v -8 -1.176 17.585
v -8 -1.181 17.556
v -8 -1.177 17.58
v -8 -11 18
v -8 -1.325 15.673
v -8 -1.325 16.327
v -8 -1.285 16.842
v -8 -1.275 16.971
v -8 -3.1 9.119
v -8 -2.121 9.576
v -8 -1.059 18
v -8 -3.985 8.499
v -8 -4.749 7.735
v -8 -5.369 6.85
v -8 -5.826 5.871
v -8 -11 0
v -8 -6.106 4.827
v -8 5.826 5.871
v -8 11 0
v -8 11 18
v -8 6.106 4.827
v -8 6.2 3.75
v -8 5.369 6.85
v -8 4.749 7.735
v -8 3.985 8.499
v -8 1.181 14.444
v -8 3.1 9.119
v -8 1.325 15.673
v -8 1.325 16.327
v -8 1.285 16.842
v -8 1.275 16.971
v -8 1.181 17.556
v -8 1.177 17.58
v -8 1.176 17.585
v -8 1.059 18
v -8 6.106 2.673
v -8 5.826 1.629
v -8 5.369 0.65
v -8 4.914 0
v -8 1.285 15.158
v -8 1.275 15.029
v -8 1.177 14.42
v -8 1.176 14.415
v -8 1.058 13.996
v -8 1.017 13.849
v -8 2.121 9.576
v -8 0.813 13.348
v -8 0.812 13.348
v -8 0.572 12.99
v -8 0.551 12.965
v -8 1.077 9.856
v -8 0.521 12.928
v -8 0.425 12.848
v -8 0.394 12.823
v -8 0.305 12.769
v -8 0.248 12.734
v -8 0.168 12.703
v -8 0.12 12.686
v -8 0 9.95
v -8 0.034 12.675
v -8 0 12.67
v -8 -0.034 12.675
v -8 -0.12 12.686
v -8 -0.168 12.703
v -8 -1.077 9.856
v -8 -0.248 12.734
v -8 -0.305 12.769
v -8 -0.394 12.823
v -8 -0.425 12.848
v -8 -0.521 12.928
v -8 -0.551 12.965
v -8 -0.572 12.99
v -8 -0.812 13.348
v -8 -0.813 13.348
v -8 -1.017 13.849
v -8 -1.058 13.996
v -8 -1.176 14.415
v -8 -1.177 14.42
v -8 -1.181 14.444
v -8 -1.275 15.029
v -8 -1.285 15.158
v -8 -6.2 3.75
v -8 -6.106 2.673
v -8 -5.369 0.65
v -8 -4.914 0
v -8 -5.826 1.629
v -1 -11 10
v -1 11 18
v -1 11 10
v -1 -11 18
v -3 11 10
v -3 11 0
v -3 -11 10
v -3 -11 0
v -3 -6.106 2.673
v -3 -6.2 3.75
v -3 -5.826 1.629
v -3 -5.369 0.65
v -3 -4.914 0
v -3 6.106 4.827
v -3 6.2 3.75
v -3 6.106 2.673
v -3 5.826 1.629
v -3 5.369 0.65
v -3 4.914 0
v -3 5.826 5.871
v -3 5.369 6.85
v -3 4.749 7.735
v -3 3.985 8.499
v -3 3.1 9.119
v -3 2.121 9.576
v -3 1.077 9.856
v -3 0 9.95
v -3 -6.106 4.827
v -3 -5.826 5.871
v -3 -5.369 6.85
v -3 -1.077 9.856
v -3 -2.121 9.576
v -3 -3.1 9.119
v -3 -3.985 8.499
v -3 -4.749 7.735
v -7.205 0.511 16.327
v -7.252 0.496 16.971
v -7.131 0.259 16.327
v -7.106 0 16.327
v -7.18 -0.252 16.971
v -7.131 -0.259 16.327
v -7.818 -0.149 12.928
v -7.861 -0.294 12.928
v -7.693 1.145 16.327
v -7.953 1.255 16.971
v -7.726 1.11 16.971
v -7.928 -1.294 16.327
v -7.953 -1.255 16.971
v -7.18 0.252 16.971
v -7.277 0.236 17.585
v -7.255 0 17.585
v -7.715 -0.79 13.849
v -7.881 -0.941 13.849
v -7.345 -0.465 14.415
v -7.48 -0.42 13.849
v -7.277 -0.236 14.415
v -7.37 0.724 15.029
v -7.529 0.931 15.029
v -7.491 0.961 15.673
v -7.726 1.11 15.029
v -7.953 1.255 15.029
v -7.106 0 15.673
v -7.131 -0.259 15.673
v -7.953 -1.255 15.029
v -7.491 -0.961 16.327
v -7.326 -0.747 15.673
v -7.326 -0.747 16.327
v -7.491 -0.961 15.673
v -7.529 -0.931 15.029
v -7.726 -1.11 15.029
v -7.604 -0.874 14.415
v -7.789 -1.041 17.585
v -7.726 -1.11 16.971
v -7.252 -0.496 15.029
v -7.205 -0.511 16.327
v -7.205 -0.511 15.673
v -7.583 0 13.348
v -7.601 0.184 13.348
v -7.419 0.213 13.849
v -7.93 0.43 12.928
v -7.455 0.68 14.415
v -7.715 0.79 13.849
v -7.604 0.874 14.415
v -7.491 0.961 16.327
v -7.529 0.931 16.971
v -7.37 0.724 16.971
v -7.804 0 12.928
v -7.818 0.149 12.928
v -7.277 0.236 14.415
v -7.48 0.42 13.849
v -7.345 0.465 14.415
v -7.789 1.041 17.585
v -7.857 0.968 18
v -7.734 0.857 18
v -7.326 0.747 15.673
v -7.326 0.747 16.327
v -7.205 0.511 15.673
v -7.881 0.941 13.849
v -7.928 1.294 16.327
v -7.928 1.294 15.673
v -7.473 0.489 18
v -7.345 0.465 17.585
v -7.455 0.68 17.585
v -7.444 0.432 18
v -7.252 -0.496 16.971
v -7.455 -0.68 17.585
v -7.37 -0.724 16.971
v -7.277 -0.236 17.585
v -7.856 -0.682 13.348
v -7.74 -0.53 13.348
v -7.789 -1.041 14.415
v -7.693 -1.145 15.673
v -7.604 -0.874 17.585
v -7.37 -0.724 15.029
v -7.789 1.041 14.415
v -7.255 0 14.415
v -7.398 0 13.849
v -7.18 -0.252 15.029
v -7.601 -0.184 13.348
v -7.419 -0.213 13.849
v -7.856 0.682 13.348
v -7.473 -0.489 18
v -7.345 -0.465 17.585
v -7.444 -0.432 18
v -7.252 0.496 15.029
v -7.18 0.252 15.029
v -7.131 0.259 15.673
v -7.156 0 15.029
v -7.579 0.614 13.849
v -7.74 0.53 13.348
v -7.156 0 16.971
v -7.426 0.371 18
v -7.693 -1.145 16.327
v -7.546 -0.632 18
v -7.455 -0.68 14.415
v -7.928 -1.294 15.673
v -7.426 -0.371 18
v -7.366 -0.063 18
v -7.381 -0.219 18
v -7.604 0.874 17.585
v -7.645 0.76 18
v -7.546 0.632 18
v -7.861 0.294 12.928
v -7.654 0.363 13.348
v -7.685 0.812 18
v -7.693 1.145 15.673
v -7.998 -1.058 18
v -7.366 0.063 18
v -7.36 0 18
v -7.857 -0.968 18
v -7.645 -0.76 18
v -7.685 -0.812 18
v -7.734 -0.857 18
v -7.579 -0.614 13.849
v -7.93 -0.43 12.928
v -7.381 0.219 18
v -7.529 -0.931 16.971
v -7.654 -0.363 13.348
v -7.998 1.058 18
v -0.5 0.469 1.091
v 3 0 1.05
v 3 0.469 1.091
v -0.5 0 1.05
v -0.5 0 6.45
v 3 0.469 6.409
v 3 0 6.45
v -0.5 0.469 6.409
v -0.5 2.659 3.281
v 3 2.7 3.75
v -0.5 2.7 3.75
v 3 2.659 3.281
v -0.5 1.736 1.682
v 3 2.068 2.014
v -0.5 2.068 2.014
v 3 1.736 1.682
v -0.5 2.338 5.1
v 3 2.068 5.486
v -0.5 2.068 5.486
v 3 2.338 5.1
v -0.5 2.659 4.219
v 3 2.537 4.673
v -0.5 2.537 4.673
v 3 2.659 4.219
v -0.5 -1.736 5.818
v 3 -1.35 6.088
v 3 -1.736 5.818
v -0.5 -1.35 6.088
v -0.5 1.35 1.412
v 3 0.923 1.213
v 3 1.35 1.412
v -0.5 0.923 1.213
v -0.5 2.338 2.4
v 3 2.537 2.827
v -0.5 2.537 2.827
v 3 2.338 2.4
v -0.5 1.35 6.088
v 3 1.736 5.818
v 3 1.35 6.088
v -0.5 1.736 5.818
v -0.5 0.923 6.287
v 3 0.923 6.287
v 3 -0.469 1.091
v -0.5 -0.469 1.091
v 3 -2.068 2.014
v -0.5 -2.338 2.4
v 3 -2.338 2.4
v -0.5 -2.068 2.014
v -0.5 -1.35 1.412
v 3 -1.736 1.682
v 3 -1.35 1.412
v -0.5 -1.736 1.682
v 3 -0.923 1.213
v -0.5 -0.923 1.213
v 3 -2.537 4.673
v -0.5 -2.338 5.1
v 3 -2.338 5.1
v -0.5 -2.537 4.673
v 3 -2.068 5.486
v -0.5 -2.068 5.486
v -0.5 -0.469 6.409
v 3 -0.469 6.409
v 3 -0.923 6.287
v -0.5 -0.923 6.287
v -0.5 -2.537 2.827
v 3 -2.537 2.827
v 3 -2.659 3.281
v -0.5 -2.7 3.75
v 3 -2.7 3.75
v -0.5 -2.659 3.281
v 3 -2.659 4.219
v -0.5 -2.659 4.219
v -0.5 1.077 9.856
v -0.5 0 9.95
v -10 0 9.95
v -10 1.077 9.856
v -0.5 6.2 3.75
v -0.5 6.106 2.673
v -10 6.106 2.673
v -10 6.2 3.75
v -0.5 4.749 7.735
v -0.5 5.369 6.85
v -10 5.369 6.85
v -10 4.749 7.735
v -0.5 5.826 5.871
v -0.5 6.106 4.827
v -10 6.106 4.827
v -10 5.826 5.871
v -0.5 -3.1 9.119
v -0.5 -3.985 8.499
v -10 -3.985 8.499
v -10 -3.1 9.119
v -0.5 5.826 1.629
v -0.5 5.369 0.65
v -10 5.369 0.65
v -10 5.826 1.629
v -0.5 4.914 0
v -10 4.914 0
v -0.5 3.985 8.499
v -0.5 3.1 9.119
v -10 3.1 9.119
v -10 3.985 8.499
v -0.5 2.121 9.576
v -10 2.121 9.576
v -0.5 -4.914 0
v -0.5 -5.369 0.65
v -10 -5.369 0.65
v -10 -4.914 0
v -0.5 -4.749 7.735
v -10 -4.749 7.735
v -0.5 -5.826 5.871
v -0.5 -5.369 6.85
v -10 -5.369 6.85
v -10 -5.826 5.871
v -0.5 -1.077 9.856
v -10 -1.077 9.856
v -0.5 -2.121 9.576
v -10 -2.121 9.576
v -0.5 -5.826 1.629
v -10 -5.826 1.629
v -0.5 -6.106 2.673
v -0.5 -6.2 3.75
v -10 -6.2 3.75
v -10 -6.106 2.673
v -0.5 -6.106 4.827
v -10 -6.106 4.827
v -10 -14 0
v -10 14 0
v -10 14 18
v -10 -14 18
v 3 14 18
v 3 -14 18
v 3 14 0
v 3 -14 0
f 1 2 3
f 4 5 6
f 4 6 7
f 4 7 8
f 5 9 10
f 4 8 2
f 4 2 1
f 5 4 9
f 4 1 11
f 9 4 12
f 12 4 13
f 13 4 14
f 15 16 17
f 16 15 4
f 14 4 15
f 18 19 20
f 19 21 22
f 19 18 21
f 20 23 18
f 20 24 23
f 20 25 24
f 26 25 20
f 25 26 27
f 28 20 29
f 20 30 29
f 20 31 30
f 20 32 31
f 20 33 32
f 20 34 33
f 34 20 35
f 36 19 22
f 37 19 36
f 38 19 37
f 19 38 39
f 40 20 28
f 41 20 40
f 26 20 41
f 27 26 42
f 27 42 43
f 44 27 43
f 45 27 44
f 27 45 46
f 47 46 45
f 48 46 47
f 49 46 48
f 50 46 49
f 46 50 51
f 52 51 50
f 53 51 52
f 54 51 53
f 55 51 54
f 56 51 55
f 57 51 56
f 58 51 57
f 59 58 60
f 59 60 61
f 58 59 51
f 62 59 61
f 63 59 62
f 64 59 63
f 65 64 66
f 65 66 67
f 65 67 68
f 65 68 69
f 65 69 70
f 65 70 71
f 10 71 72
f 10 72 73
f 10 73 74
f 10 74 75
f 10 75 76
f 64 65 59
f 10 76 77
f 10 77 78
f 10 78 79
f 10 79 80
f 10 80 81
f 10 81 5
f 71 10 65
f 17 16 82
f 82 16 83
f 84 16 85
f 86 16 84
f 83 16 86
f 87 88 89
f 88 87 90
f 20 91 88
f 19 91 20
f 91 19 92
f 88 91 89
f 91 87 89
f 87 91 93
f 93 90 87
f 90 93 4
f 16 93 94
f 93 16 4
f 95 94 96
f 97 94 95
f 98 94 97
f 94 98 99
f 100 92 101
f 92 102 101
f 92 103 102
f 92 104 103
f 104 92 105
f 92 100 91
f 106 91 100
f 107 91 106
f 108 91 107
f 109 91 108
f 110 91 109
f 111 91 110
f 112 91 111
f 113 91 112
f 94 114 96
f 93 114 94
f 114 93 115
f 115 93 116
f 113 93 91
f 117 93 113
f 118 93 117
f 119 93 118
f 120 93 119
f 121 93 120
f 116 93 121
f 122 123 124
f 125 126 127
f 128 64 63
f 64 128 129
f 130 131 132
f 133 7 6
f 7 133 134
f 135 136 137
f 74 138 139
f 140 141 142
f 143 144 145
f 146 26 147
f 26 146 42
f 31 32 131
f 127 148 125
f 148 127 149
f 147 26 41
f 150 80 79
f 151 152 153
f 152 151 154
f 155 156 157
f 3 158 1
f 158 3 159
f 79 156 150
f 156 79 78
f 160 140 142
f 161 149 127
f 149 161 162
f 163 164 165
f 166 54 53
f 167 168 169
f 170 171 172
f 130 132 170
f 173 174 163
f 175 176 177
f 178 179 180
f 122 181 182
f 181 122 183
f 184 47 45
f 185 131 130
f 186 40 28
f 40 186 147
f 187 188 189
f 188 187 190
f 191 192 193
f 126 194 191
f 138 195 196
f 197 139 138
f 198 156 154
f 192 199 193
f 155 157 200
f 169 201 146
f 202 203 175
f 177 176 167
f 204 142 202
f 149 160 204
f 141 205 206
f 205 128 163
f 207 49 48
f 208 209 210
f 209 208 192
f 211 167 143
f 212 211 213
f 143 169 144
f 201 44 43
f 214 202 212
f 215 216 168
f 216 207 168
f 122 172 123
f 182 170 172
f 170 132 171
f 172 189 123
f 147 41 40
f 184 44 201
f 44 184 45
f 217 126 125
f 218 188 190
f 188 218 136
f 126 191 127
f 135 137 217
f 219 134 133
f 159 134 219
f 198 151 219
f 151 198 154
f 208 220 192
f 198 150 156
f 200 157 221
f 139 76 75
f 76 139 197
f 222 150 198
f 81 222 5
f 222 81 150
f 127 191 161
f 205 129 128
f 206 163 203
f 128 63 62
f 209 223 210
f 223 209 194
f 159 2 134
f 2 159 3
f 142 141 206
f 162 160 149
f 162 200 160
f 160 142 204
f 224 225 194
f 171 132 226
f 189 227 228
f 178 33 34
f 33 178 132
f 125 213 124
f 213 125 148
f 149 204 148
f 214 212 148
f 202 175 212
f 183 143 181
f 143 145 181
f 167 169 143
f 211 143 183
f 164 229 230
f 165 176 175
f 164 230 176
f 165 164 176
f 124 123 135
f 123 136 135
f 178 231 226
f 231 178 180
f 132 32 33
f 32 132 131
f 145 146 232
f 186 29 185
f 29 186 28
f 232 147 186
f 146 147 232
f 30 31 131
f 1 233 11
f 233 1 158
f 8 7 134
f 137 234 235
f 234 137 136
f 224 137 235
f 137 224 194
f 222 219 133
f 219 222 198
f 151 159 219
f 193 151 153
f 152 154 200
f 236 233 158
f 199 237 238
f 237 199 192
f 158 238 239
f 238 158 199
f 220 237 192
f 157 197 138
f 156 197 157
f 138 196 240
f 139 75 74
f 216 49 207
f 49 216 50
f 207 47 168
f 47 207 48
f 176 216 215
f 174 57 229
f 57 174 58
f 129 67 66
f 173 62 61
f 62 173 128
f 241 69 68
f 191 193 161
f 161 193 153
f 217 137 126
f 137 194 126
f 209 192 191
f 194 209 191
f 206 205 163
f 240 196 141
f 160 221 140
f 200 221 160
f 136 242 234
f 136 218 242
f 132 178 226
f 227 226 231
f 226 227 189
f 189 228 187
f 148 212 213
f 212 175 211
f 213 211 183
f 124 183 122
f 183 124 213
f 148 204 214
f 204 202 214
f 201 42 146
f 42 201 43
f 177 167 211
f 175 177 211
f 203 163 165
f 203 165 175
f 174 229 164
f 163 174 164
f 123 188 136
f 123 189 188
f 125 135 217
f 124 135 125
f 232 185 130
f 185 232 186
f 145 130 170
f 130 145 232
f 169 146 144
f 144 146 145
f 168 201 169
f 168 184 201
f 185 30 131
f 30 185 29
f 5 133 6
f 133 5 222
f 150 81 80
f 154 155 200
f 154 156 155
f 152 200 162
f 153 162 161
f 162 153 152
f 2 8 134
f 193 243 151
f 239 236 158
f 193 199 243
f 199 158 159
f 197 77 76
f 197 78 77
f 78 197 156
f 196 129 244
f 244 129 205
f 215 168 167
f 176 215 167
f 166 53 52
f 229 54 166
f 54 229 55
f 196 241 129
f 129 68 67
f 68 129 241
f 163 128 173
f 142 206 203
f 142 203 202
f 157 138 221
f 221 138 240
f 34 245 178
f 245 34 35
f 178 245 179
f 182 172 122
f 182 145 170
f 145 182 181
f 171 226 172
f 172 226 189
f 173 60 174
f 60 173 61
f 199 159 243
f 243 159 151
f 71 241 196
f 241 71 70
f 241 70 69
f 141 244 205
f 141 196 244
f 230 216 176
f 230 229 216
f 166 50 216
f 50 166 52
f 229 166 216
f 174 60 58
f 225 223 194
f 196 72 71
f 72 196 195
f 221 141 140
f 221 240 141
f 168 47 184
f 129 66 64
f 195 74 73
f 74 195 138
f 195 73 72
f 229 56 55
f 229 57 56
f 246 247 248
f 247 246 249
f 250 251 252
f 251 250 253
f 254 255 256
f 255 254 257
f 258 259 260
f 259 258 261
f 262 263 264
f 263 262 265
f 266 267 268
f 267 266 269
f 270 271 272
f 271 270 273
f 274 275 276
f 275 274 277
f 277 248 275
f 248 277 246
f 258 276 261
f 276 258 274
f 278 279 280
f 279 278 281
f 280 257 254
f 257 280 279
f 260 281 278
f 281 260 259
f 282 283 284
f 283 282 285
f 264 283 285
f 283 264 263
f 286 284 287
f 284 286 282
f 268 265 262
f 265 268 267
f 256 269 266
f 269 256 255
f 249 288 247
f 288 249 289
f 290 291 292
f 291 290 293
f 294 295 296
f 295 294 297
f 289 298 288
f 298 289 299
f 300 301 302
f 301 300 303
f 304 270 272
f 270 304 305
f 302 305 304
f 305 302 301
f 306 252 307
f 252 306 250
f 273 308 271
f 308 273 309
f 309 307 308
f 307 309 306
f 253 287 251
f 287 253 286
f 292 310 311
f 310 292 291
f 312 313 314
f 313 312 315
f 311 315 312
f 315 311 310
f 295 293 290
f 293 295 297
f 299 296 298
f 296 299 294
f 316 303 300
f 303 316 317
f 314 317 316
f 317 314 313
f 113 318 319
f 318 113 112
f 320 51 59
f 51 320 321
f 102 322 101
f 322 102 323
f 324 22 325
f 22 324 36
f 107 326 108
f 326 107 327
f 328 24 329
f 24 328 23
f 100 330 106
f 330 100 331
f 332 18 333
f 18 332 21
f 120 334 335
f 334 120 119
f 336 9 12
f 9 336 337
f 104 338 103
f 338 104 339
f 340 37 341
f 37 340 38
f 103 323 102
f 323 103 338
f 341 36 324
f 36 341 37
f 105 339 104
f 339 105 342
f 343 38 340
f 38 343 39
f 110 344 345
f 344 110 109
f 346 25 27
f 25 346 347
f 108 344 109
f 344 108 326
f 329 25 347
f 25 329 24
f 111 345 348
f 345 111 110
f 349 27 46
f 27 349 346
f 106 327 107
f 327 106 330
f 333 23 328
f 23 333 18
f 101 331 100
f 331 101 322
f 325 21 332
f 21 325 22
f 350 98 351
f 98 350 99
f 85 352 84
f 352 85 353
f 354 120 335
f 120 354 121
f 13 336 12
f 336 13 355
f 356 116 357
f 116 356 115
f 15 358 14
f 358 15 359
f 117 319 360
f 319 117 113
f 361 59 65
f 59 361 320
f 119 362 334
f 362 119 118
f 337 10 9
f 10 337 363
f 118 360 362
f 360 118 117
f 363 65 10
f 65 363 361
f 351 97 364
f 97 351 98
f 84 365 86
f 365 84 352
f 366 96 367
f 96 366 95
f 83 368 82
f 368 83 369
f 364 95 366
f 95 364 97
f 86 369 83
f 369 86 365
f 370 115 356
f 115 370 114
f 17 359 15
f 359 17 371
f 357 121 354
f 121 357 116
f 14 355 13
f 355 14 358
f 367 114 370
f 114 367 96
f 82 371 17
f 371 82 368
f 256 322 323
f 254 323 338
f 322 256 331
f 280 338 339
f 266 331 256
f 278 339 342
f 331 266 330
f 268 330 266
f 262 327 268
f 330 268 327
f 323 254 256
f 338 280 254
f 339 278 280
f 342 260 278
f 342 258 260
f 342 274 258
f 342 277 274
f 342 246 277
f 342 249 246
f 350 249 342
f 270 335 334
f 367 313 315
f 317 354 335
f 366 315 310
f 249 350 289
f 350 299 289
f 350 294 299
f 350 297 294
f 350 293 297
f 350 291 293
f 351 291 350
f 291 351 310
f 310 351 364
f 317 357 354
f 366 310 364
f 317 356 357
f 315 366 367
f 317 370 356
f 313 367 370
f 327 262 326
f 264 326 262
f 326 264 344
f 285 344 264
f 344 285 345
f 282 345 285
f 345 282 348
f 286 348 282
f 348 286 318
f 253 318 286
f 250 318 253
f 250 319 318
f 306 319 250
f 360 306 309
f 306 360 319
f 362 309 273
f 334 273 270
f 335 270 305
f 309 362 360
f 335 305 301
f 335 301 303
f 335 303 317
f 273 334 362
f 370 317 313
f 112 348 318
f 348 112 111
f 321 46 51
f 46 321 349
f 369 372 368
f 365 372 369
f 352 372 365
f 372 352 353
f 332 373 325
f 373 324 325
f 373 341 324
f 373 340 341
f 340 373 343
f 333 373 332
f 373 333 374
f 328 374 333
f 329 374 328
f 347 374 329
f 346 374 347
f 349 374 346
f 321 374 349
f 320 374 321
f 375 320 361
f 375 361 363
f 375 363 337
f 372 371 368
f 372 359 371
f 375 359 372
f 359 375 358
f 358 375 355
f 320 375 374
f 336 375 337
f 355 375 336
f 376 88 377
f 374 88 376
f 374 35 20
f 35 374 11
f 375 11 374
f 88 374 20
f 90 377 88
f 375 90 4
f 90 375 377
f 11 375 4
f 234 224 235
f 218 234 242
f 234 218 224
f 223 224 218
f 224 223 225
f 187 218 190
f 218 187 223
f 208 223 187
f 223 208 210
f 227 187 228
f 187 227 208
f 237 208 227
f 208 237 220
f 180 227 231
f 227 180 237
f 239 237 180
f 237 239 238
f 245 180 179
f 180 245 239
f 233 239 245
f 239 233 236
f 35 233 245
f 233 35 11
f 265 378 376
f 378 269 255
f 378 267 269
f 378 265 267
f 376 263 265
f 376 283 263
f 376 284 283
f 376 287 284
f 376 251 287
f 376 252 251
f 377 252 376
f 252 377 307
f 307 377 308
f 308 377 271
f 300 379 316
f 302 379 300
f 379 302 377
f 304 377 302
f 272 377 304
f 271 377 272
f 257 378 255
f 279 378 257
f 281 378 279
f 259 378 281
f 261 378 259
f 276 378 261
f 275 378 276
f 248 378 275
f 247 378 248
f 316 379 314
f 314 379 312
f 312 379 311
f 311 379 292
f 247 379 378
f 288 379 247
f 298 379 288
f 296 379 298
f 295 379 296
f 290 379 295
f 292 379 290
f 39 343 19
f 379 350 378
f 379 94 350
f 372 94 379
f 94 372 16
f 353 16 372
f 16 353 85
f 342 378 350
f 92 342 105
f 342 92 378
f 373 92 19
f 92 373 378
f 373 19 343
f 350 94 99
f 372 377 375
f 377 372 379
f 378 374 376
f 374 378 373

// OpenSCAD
// file: ../functions.scad
//a cylinder with a flat on top - for drawing vertical holes.
module cap_cylinder(r=1, h=1, center=false){
	render() union(){
		cylinder(r=r, h=h, center=center);
		intersection(){
			rotate([0,0,22.5]) cylinder(r=r/cos(180/8), h=h, $fn=8, center=center);
			translate([0,-r/cos(180/4),0]) rotate([0,0,0]) cylinder(r=r/cos(180/4), h=h, $fn=4, center=center);
		}
	}
}

//holes for the motor
module motor_holes(screw_rad = m3_rad+slop/2, screw_w = motor_screw_sep, slot=2, height = wall*3){
    bump_rad = 12;
    
    cylinder(r=bump_rad, h=height, center=true);
    %translate([0,0,-20]) cylinder(r=pulley_flange_rad, h=height*2);
    for(i=[0:90:359]) rotate([0,0,i]) translate([screw_w/2, screw_w/2, 0]){
        hull(){
            translate([-slot/2,-slot/2,0]) cylinder(r=screw_rad, h=height, center=true);
            translate([slot/2,slot/2,0]) cylinder(r=screw_rad, h=height, center=true);
        }
    }
}

module screw_hole_m3(cap=false, onion=0, height=wall){
    screw_hole(cap=cap, onion=onion, cap_height=m3_cap_height, rad=m3_rad, cap_rad=m3_cap_rad, height=height);
}

module nut_hole_m3(cap=false, onion=0, height=wall){
    nut_hole(cap=cap, onion=onion, nut_height=m3_nut_height+1, rad=m3_rad, nut_rad=m3_nut_rad, height=height);
}

module screw_hole_m4(cap=false, onion=0, height=wall){
    screw_hole(cap=cap, onion=onion, cap_height=m4_cap_height, rad=m4_rad, cap_rad=m4_cap_rad, height=height);
}

module screw_hole_m5(cap=false, onion=0, height=wall){
    screw_hole(cap=cap, onion=onion, cap_height=m5_cap_height, rad=m5_rad, cap_rad=m5_cap_rad, height=height);
}

//nuthole with a nice recess for the cap.
module nut_hole(cap=false, onion=0, height=wall){
    translate([0,0,-nut_height-1])
        if(cap==true){
            cap_cylinder(r=rad, h=height*3);
        }else{
            cylinder(r=rad, h=height*3);
        }
	translate([0,0,0])
        cylinder(r1=nut_rad, r2=nut_rad+slop, h=height, $fn=6);
        
}

//nuthole with a nice recess for the cap.
module screw_hole(cap=false, onion=0, height=wall){
    translate([0,0,cap_height-.05+onion])
        if(cap==true){
            cap_cylinder(r=rad, h=height);
        }else{
            cylinder(r=rad, h=height);
        }
	translate([0,0,cap_height-height])
        if(cap==true){
            cap_cylinder(r=cap_rad, h=height);
        }else{
            cylinder(r=cap_rad, h=height);
        }
}
// file: ../configuration.scad
in = 25.4;
mdf_wall = 6.5;
mdf_tab = 15;

wall = 5;

screw_slop = .2;
slop = .2;
laser_slop = -.1;

smooth_rod_rad = 10/2+laser_slop+.1;
smooth_rod_sep =490/5;

//this is for the old printer 
//smooth_rod_sep = 115;

//these can't change - measured values.
beam = 20;
bed_screw_sep = 309;
bed = 300;

layer_height=.2;

//this is using the gt2 idlers from robotdigg
//idler_rad = 13/2;
//idler_flange_rad = 18/2;
//idler_thick = 12;

//these use the smaller M5 flanged bearings as idlers
idler_rad = 16/2;
idler_flange_rad = 18/2;
idler_thick = 11.5;

//flanged bearing for the Z idler
z_bearing=22/2;
z_bearing_flange = 25/2;
leadscrew_rad = 8/2+slop;
leadscrew_shaft_rad = 7;
leadscrew_screw_rad = 19.05/2;

pulley_rad = 13/2;
pulley_flange_rad = 18/2;

//using the mini V-wheels
wheel_rad = 15.5/2;
wheel_inner_rad = 12.5/2;
wheel_clearance = 18;
wheel_height = 9;
wheel_inner_height = 5;
wheel_flange_rad = 16/2;

eccentric_rad = 7.3/2;
eccentric_flange_rad = 11/2;

//frame lengths - may be dependent on wall above.
frame_x = 500;  //we lose more in X because of the endcaps - it's where all the motors etc. will hide.
frame_y = 490;  //(490-300)/2-beam=75mm clearance on either side of the print bed.
corner_y = frame_y-75;
frame_z = 440;  //because the leadscrews are short, the motors stick up and the feet stick down
corner_z = frame_z-25;

corner_endplate = true; //this controls wether you want a full endcap, or just the corners.  Corners allows twisting in a direction that should be impossible when the rails are connected on both ends, but I wanted to retain the old option just in case.
corner_length = 170; //length of the corner side support.

foot_height = 25.4;  //extra meat on the legs

echo("BOM: 4, reg rail, 2020", frame_x, "Frame");

belt_thick = 9;
belt_width = 1.5;

//motor size and placement variables
motor_w = 42;
motor_r = 52/2;
motor_y = frame_y/2-beam-pulley_rad-belt_width; //distance motors are from the center.




//gantry - might want to make it bigger
echo("BOM: 1, v-rail, 2020", frame_y, "Gantry");

//bed lengths
bed_x = 300+beam*2;
bed_y = 300;  //the screwholes on the bed should line up with the long_bed rails.

bed_screw_offset_y = bed_y/2;
bed_screw_offset_x = 15+5+2;

echo("BOM: 2, reg rail, 2020", bed_x, "Bed mount");
echo("BOM: 3, reg rail, 2020", bed_y, "Bed mount");  //might want more than three - to hold insulation well.

//standard screw variables
m3_nut_rad = 6.01/2+slop;
m3_nut_height = 2.4;
m3_rad = 3/2+slop;
m3_cap_rad = 3.25;
m3_cap_height = 2;
m3_sq_nut_rad = 7.9/2;


m4_nut_rad = 7.66/2+slop;
m4_nut_height = 3.2;
m4_rad = 4/2+slop;
m4_cap_rad = 7/2+slop;
m4_cap_height = 2.5;

m5_nut_rad = 8.79/2;
m5_sq_nut_rad = (8*sqrt(2)+slop/2)/2;
m5_nut_rad_laser = 8.79/2-.445;
m5_nut_height = 4.7;
m5_rad = 5/2+slop;
m5_rad_laser = 5/2-.1;
m5_cap_rad = 10/2+slop;
m5_cap_height = 3;
m5_washer_rad = 11/2+slop;


//redoing the frame with 10-24 screws - will use them for self-tapping screws
//on the endcaps, as well as all the MDF->MDF joints.  The reason for this is
//that the nuts on 10-24 are MUCH larger than  M5 nuts - making it way less
//likely to ruin the MDF.
ten24_rad = (.19*in/2+slop);
ten24_cap_rad = (.361*in/2+slop);
ten24_cap_height = .101*in+slop;
ten24_nut_rad = ((3/8*in)*cos(180/6))/2;
ten24_sq_nut_rad = ((3/8*in)*sqrt(2))/2+slop/2;

ten24_nut_height = 1/8*in+slop;

ten24_rad_laser = ten24_rad+laser_slop/2;
ten24_sq_nut_rad_laser = ten24_sq_nut_rad+laser_slop/2;
ten24_sq_nut_flat = 9.5;
ten24_sq_nut_flat_laser = ten24_sq_nut_flat+laser_slop;


echo(m5_sq_nut_rad);
echo(ten24_sq_nut_rad);



//some enums
MALE = 1;
FEMALE = -1;

//makes all the holes have lots of segments
$fs=.5;
$fa=.1;
// main file
include <../configuration.scad>
include <../functions.scad>

$fn=36;


holder_switch();

angle = 130;
wall = 2;
slop = .2;
hole_height = 2.75;
hole_sep = 19.25;

height = 8;
length = hole_sep+wall*2;

endstop_width = 7.5;

m8_dia = 8;
m8_rad = m8_dia/2+slop;

m3_nut_rad = 6/cos(30)/2;
m3_nut_height = 3;
m3_rad = 1.8;
m3_cap_rad = 3.25;


module holder(){
	clamp_offset = 5;
	length = length+clamp_offset;
	difference(){
		hull(){
			translate([-m8_rad,0,height/2]) cube([length, m8_rad*2+wall*3, height],center=true);
			translate([length/2,0,height/2]) cylinder(r=m8_rad+wall/2, h=height, center=true);

			//screwholes
			
		}
		
		translate([length/2,0,height/2]) cylinder(r=m8_rad, h=height+1, center=true);
		
		//clamp
		translate([length/2-clamp_offset,0,height/2]) cylinder(r=m8_rad, h=height+1, center=true);
	
		translate([-clamp_offset,0,height/2]) cube([length, m8_rad*2, height+1],center=true);

		//screwholes
		for(i=[-1,1]) translate([i*hole_sep/2-m8_rad/2-wall, 0, height-hole_height]) rotate([-90,0,0]) {
			cap_cylinder(r=m3_rad, h=length, center=true);
			translate([0,0,m8_rad+wall*2/3]) cap_cylinder(r=m3_cap_rad, h=wall);
			translate([0,0,-m8_rad-wall*2]) cylinder(r=m3_nut_rad, h=wall*1.3333, $fn=6);
		}
	}
}

module holder_switch(){
    width=22;
    thick = 7;
    base = 3;
    wire_height = 10;
    wire = 5;
    
    wall=3;
    
    difference(){
        union(){
            //endstop holder
            translate([-thick/2,0,(height+wire_height)/2]) cube([thick+wall*2, width+wall*2,height+wire_height], center=true);
        }
            
        translate([-1,0,0]) 
        difference(){
            union(){
                //endstop
                translate([-thick/2,0,height/2+wire_height+.1]) cube([thick, width,height+.2], center=true);
                //wire pass
                translate([-thick/2-(thick-wire)/2,0,wire_height/2-.1]) cube([wire, width,wire_height+.3], center=true);
            }
            
            //retainer bump
            translate([-thick-wall/4,0,height*3/4+wire_height]) scale([1.1,1,2.5]) sphere(r=wall/2);
        }
        
        //screwhole
        translate([0,0,wire_height/2-1.25]) rotate([0,90,0]) {
            cylinder(r=m5_rad, h=30, center=true);
            translate([0,0,-15+3-3.5]) cylinder(r=m5_cap_rad+1, h=30, center=true);
        }
        
        //flatten bottom
        for(i=[-1]) translate([0,0,25*i+height/2+height/2*i]) cube([50,50,50], center=true);
    }
}

module holder_old(){
	difference(){
		union(){
			#translate([0,0,height/2]) rotate([0,90,0]) round_clip(rad = m8_rad, height = height, wall = wall, angle=angle, support = 0, clamp=1, solid = 1);
			translate([wall/2,0,height/2]) cube([wall,hole_sep+m3_rad*2+wall*2.5,height],center=true);

			for(i=[-1,1]) translate([wall/2,hole_sep/2*i,hole_height]) rotate([0,90,0]) rotate([0,0,0]) cylinder(r1=wall+m3_nut_rad, r2=wall/2+m3_nut_rad, h=m3_nut_height+.1, $fn=6);
		}

		for(i=[-1,1]) translate([wall,hole_sep/2*i,hole_height]) rotate([0,90,0]) {
			cylinder(r=m3_nut_rad, h=m3_nut_height+.5, $fn=6);
			rotate([0,0,-90]) cap_cylinder(r=m3_rad, h=height*2, center=true);
		}

		translate([0,0,height/2]) rotate([0,90,0]) round_clip(rad = m8_rad, height = height, wall = wall, angle=angle, support = 0, clamp=1, solid = 0);

		//clean top and bot
		for(i=[-1,1]) translate([0,0,25*i+height/2+height/2*i]) cube([50,50,50], center=true);
	}
}

module round_clip(rad=8, height=10, wall=3, angle=45, support=0, clamp=0, solid=0){
	translate([0,0,wall+rad])
	rotate([0,90,0])
	if(solid == 1){
		union(){
			translate([0,0,height/2]) rotate([0,0,30]) cylinder(r=(wall/2+rad)/cos(30), h=height*2, center=true);

			if(clamp==1){
				for(i=[-1,1]) rotate([0,0,i*angle/2]) translate([-rad-wall/2,0,0]) rotate([0,0,-i*angle/2]) rotate([i*90,0,0]) hull(){
					translate([wall/2, 0, 0]) cylinder(r1=wall+m3_nut_rad, r2=wall/2+m3_nut_rad, h=m3_nut_height+.1, $fn=6, center=true);
					translate([-m8_rad, 0, 0]) cylinder(r1=wall+m3_nut_rad, r2=wall/2+m3_nut_rad, h=m3_nut_height+.1, $fn=6, center=true);
				}
			}
		}
	}else{
		//hollow
		cylinder(r=rad, h=height*4, center=true);
		hull(){
			if(support==1){
				translate([0,0,rad+wall+height/2]) rotate([90,0,0]) cylinder(r=rad+wall, h=height*3, center=true);
			}else{
				translate([rad*2,0,rad+wall+height/2]) rotate([90,0,0]) cylinder(r=rad+wall, h=height*3, center=true);
			}
			translate([-rad,0,rad+wall+height/2]) rotate([90,0,0]) cylinder(r=rad+wall, h=height*3, center=true);
		}

		//zip tie slot
		*translate([-1,0,0]) difference(){
			cylinder(r=(wall/2+rad+2)/cos(30), h=3, center=true);
			cylinder(r=(wall/2+rad)/cos(30), h=4, center=true);
		}
		
		//clip cutout
		difference(){
			for(i=[-1,0,1]) rotate([0,0,i*(angle/2-30)]) translate([-rad*2,0,0]) cylinder(r=rad*2, h=height*3, center=true, $fn=3);
			for(i=[-1,1]) rotate([0,0,i*angle/2]) translate([-rad-wall/2,0,0]) cylinder(r=wall/2, h=height*3, center=true);
			if(clamp == 1){
				for(i=[-1,1]) rotate([0,0,i*angle/2]) translate([-rad-wall/2,0,0]) rotate([0,0,-i*angle/2]) rotate([i*90,0,0]) hull(){
					cylinder(r1=wall+m3_nut_rad, r2=wall/2+m3_nut_rad, h=m3_nut_height+.1, $fn=6, center=true);
					translate([-m8_rad, 0, 0]) cylinder(r1=wall+m3_nut_rad, r2=wall/2+m3_nut_rad, h=m3_nut_height+.1, $fn=6, center=true);
				}
			}
		}

		if(clamp == 1){
			rotate([0,0,1*angle/2]) translate([-rad-wall/2,0,0]) rotate([0,0,-1*angle/2]) rotate([0,0,0]) rotate([90,0,0]) translate([-m8_rad, 0, -m8_rad*4]) cylinder(r=m3_rad, h=m8_rad*6);
			rotate([0,0,1*angle/2]) translate([-rad-wall/2,0,0]) rotate([0,0,-1*angle/2]) rotate([0,0,0]) rotate([90,0,0]) translate([-m8_rad, 0, 0]) cylinder(r=m3_cap_rad, h=wall);
			rotate([0,0,-1*angle/2]) translate([-rad-wall/2,0,0]) rotate([0,0,1*angle/2]) rotate([0,0,0]) rotate([90,0,0]) translate([-m8_rad, 0, -wall]) cylinder(r=m3_nut_rad, h=wall, $fn=6);
		}
	}
}


module tear(r, h) {
  union() {
    cylinder(r=r, h=h);
    rotate([0, 0, 135]) cube([r, r, h]);
  }
}

module crap(){
difference() {
  union() {
		translate([1,.5,0])
		cube([15, 11.2, 7]);

		translate([-13, 17, 0])
		cube([28, 2.5, 7]);

		translate([8.4, 11.2, 0])
		cylinder(r=16 / 2, h=7);
  }

	translate([-0.1, 4.9, 3.3])
	rotate([0, 90, 0])
	tear(r=3.1 / 2, h=23);

	translate([8.4, 11.2, -1])
	cylinder(r=4.2, h=10);

	translate([4.7, -1, -1])
	cube([7.2, 11.2, 10]);

		translate([-9.25, 21, 4.5])
		rotate([90, 0, 0])
		cylinder(r=1.8, h=9);

		translate([-9.25, 18, 4.5])
		rotate([90, 0, 0])
		rotate([0,0,30]) cylinder(r=3/cos(30), h=3, $fn=6);	

		translate([10, 18, 4.5])
		rotate([90, 0, 0])
		rotate([0,0,30]) cylinder(r=3.2, h=3, $fn=6);
		translate([10, 18, 6])
		rotate([90, 0, 0])
		rotate([0,0,30]) cylinder(r=3.2, h=3, $fn=6);
		
		translate([10,19.6, 4.5])
		rotate([90, 0, 0])
		cylinder(r=1.8, h=9);

  translate([3.9, -5, -1])
  cylinder(r=1.5, h=6);
}
}

module cap_cylinder(r=1, h=1, center=false){
	render() union(){
		cylinder(r=r, h=h, center=center);
		intersection(){
			rotate([0,0,22.5]) cylinder(r=r/cos(180/8), h=h, $fn=8, center=center);
			translate([0,-r/cos(180/4),0]) rotate([0,0,0]) cylinder(r=r/cos(180/4), h=h, $fn=4, center=center);
		}
	}
}
